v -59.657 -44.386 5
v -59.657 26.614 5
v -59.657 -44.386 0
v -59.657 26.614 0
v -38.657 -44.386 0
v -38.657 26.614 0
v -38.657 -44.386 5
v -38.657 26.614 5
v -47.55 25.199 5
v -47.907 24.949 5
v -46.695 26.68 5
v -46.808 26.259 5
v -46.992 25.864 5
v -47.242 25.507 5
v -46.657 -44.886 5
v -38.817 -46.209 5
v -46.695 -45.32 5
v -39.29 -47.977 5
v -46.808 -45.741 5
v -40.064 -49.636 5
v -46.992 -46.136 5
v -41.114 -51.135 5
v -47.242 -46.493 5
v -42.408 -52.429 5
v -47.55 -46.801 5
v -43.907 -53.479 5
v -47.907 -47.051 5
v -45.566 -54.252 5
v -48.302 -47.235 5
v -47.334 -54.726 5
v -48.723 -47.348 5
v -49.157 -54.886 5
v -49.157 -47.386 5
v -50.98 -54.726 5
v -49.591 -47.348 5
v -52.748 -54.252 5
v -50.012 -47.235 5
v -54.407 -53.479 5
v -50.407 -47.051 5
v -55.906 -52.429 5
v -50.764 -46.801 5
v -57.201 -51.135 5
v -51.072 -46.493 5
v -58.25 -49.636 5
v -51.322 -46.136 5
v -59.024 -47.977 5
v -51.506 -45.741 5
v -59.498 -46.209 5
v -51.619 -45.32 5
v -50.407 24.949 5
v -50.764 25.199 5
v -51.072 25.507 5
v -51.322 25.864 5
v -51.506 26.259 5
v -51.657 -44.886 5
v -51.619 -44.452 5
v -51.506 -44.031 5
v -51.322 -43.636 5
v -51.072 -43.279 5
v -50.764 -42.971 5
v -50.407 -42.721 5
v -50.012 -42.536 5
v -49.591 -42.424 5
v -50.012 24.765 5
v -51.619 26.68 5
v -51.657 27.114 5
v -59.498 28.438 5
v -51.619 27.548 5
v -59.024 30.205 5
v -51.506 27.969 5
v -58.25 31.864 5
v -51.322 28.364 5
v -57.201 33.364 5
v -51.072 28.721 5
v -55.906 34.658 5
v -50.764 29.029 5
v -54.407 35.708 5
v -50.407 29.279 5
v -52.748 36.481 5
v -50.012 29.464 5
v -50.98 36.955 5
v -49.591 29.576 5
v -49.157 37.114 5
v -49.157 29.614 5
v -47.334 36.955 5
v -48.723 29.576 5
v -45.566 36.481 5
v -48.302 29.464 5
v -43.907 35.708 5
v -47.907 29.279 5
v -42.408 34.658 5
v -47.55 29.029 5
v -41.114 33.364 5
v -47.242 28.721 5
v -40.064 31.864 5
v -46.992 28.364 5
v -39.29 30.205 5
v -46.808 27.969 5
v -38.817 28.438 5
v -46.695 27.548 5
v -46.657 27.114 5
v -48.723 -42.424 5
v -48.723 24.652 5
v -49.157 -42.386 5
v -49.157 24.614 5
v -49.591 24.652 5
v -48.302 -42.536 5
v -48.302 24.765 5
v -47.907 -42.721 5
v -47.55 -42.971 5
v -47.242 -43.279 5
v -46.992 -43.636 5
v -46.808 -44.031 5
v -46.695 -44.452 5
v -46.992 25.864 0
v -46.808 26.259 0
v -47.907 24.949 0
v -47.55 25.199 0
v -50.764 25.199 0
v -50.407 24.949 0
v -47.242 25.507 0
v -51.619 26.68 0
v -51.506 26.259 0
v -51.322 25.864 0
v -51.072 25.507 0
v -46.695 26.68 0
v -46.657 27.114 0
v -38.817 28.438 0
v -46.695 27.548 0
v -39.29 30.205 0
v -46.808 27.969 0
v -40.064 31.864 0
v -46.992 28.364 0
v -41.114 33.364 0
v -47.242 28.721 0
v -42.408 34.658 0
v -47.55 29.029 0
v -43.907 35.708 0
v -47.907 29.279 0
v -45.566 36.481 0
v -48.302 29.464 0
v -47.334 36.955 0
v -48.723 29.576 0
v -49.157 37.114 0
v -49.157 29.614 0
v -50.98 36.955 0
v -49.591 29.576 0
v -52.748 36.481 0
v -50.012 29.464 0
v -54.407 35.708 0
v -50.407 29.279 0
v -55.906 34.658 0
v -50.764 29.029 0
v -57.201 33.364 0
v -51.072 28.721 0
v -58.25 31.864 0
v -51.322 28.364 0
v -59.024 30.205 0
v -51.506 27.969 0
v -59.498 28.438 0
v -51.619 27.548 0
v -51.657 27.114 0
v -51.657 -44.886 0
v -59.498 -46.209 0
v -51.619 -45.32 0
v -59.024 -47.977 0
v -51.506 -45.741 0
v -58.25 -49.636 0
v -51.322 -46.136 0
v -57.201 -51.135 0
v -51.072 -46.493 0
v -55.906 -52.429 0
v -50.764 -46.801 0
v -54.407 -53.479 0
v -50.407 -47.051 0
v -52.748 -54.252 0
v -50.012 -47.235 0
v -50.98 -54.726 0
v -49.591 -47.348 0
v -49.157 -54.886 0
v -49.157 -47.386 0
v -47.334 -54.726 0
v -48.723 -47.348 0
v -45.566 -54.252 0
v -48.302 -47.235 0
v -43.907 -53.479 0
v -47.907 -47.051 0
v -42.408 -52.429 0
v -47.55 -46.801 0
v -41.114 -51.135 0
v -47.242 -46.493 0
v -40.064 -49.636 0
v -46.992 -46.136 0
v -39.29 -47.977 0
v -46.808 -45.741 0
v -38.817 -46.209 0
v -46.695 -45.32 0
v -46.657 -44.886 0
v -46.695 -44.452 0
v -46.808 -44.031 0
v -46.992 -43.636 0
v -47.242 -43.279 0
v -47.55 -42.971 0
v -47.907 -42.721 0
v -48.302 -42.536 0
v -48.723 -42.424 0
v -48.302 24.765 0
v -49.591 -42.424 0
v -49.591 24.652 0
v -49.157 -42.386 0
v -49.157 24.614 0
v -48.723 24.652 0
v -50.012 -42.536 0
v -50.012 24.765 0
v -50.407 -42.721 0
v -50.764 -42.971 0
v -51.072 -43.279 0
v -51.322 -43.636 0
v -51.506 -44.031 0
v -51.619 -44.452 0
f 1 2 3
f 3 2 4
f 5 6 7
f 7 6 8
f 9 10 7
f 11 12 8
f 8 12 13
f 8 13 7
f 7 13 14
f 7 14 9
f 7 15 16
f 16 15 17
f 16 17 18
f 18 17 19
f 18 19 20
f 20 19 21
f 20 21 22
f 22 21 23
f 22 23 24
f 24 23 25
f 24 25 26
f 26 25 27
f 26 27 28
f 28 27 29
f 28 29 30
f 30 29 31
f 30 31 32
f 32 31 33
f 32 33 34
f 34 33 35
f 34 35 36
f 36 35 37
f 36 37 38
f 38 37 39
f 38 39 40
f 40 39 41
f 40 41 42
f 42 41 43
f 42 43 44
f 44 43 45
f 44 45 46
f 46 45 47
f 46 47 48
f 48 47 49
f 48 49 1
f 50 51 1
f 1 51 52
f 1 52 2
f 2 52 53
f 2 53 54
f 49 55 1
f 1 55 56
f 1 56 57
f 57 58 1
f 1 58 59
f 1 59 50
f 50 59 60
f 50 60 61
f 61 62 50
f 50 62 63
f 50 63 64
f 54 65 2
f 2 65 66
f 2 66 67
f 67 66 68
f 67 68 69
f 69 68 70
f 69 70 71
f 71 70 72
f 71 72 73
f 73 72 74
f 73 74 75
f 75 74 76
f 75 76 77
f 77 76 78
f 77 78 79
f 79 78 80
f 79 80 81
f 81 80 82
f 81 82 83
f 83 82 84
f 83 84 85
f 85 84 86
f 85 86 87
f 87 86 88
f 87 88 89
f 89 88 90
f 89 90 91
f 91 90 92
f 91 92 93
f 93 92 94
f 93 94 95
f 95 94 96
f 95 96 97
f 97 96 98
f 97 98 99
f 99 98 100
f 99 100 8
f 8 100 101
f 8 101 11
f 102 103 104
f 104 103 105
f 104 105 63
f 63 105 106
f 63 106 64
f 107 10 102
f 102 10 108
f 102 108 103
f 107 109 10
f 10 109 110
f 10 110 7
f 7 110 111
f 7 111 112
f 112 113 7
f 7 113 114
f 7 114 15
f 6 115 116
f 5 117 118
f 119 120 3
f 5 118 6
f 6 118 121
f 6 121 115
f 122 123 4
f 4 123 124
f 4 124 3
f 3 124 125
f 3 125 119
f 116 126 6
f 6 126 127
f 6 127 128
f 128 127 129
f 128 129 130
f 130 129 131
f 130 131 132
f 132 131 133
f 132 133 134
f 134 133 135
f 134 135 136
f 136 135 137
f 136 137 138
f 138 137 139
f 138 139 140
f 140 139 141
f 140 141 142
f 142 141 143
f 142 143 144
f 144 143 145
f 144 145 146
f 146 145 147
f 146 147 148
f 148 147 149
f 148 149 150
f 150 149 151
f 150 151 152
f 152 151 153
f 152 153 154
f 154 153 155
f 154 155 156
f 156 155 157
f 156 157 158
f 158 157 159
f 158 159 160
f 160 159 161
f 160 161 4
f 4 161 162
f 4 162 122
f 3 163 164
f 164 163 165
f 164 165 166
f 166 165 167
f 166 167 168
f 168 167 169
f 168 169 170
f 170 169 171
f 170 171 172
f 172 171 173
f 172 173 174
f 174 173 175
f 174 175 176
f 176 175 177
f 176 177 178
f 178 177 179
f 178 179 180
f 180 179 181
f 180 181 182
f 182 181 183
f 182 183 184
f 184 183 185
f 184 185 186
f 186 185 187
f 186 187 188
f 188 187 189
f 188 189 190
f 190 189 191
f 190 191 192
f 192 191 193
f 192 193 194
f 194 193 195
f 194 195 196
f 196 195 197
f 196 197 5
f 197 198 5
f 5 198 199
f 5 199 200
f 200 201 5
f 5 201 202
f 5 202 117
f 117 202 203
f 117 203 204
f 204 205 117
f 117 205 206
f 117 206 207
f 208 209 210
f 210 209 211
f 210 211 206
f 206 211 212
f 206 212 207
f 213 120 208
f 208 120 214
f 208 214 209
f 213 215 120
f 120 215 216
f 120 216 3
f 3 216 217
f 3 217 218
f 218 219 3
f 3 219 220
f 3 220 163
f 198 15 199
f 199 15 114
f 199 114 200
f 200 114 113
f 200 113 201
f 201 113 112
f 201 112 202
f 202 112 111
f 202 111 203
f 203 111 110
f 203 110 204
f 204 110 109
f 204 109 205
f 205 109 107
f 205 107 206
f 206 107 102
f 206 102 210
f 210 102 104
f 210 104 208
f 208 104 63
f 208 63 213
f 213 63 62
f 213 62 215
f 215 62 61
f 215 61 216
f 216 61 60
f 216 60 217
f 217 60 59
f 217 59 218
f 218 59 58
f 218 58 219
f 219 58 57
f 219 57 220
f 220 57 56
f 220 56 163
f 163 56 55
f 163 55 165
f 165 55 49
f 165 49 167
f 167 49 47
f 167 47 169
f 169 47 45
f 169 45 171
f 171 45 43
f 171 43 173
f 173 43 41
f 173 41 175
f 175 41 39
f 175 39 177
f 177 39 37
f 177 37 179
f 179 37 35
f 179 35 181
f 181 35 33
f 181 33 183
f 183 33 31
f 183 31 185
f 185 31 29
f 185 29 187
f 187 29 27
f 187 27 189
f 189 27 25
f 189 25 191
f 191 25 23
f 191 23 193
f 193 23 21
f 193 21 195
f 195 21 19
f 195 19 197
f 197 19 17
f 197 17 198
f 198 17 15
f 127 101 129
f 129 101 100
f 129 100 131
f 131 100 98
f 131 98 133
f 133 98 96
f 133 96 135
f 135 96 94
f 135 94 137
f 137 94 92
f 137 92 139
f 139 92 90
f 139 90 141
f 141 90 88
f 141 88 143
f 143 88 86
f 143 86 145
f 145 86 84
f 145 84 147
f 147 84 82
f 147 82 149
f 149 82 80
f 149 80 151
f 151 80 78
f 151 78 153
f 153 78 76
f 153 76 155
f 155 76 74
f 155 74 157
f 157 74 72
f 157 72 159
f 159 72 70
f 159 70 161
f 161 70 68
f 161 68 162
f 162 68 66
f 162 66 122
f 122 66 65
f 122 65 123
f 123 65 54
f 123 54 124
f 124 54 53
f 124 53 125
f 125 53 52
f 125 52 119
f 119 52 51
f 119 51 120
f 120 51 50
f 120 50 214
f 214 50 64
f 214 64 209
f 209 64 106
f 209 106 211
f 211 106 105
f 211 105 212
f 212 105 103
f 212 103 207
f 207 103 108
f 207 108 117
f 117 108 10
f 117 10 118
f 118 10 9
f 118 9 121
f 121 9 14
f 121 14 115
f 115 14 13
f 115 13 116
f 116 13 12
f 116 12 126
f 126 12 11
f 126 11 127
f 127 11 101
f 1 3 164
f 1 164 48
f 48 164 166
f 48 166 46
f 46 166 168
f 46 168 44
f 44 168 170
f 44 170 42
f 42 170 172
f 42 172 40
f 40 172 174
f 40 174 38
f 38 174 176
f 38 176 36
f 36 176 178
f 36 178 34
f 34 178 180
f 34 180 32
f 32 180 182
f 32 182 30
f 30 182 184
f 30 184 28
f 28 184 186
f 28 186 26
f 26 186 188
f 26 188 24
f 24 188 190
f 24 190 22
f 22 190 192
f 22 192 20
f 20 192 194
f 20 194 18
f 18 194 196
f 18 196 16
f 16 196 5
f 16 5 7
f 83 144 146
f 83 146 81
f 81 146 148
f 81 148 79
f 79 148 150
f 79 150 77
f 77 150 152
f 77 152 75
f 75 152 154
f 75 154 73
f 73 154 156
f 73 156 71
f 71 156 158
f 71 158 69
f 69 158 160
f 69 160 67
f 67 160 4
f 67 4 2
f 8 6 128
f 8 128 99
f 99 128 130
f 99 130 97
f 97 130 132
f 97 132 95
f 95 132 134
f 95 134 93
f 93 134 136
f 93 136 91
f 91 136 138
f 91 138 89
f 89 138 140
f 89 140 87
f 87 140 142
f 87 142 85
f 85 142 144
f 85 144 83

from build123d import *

# Parameters (mm, degrees)
SKETCH_1_W          = 21
SKETCH_1_H          = 92
EXTRUDE_1_DEPTH     = 5
SKETCH_3_R          = 2.5
CUT_EXTRUDE_1_DEPTH = 15
SKETCH_4_R          = 2.5
CUT_EXTRUDE_2_DEPTH = 15
FILLET_2_R          = 10.5


with BuildPart() as part:
    # 草图1 → 凸台-拉伸1 (new body)
    with BuildSketch(Plane.XY):
        with Locations((-49.157142857, -8.885714286)):
            Rectangle(SKETCH_1_W, SKETCH_1_H)
    extrude(amount=EXTRUDE_1_DEPTH)

    # 草图3 → 切除-拉伸1 (cut)
    with BuildSketch(Plane.XY.offset(5)):
        with Locations((-49.157142857, -44.885714286)):
            Circle(SKETCH_3_R)
    extrude(amount=-CUT_EXTRUDE_1_DEPTH, mode=Mode.SUBTRACT)

    # 草图4 → 切除-拉伸2 (cut)
    with BuildSketch(Plane.XY.offset(5)):
        with Locations((-49.157142857, 27.114285714)):
            Circle(SKETCH_4_R)
    extrude(amount=-CUT_EXTRUDE_2_DEPTH, mode=Mode.SUBTRACT)

    # 圆角2
    fillet_2_edges = [part.edges().sort_by_distance(p)[0] for p in [
        (-38.657142857, 37.114285714, 2.5),
        (-59.657142857, 37.114285714, 2.5),
        (-38.657142857, -54.885714286, 2.5),
        (-59.657142857, -54.885714286, 2.5),
    ]]
    fillet(fillet_2_edges, radius=FILLET_2_R - 0.0001)  # a hair under: the kernel refuses the full size


solid = part.part
